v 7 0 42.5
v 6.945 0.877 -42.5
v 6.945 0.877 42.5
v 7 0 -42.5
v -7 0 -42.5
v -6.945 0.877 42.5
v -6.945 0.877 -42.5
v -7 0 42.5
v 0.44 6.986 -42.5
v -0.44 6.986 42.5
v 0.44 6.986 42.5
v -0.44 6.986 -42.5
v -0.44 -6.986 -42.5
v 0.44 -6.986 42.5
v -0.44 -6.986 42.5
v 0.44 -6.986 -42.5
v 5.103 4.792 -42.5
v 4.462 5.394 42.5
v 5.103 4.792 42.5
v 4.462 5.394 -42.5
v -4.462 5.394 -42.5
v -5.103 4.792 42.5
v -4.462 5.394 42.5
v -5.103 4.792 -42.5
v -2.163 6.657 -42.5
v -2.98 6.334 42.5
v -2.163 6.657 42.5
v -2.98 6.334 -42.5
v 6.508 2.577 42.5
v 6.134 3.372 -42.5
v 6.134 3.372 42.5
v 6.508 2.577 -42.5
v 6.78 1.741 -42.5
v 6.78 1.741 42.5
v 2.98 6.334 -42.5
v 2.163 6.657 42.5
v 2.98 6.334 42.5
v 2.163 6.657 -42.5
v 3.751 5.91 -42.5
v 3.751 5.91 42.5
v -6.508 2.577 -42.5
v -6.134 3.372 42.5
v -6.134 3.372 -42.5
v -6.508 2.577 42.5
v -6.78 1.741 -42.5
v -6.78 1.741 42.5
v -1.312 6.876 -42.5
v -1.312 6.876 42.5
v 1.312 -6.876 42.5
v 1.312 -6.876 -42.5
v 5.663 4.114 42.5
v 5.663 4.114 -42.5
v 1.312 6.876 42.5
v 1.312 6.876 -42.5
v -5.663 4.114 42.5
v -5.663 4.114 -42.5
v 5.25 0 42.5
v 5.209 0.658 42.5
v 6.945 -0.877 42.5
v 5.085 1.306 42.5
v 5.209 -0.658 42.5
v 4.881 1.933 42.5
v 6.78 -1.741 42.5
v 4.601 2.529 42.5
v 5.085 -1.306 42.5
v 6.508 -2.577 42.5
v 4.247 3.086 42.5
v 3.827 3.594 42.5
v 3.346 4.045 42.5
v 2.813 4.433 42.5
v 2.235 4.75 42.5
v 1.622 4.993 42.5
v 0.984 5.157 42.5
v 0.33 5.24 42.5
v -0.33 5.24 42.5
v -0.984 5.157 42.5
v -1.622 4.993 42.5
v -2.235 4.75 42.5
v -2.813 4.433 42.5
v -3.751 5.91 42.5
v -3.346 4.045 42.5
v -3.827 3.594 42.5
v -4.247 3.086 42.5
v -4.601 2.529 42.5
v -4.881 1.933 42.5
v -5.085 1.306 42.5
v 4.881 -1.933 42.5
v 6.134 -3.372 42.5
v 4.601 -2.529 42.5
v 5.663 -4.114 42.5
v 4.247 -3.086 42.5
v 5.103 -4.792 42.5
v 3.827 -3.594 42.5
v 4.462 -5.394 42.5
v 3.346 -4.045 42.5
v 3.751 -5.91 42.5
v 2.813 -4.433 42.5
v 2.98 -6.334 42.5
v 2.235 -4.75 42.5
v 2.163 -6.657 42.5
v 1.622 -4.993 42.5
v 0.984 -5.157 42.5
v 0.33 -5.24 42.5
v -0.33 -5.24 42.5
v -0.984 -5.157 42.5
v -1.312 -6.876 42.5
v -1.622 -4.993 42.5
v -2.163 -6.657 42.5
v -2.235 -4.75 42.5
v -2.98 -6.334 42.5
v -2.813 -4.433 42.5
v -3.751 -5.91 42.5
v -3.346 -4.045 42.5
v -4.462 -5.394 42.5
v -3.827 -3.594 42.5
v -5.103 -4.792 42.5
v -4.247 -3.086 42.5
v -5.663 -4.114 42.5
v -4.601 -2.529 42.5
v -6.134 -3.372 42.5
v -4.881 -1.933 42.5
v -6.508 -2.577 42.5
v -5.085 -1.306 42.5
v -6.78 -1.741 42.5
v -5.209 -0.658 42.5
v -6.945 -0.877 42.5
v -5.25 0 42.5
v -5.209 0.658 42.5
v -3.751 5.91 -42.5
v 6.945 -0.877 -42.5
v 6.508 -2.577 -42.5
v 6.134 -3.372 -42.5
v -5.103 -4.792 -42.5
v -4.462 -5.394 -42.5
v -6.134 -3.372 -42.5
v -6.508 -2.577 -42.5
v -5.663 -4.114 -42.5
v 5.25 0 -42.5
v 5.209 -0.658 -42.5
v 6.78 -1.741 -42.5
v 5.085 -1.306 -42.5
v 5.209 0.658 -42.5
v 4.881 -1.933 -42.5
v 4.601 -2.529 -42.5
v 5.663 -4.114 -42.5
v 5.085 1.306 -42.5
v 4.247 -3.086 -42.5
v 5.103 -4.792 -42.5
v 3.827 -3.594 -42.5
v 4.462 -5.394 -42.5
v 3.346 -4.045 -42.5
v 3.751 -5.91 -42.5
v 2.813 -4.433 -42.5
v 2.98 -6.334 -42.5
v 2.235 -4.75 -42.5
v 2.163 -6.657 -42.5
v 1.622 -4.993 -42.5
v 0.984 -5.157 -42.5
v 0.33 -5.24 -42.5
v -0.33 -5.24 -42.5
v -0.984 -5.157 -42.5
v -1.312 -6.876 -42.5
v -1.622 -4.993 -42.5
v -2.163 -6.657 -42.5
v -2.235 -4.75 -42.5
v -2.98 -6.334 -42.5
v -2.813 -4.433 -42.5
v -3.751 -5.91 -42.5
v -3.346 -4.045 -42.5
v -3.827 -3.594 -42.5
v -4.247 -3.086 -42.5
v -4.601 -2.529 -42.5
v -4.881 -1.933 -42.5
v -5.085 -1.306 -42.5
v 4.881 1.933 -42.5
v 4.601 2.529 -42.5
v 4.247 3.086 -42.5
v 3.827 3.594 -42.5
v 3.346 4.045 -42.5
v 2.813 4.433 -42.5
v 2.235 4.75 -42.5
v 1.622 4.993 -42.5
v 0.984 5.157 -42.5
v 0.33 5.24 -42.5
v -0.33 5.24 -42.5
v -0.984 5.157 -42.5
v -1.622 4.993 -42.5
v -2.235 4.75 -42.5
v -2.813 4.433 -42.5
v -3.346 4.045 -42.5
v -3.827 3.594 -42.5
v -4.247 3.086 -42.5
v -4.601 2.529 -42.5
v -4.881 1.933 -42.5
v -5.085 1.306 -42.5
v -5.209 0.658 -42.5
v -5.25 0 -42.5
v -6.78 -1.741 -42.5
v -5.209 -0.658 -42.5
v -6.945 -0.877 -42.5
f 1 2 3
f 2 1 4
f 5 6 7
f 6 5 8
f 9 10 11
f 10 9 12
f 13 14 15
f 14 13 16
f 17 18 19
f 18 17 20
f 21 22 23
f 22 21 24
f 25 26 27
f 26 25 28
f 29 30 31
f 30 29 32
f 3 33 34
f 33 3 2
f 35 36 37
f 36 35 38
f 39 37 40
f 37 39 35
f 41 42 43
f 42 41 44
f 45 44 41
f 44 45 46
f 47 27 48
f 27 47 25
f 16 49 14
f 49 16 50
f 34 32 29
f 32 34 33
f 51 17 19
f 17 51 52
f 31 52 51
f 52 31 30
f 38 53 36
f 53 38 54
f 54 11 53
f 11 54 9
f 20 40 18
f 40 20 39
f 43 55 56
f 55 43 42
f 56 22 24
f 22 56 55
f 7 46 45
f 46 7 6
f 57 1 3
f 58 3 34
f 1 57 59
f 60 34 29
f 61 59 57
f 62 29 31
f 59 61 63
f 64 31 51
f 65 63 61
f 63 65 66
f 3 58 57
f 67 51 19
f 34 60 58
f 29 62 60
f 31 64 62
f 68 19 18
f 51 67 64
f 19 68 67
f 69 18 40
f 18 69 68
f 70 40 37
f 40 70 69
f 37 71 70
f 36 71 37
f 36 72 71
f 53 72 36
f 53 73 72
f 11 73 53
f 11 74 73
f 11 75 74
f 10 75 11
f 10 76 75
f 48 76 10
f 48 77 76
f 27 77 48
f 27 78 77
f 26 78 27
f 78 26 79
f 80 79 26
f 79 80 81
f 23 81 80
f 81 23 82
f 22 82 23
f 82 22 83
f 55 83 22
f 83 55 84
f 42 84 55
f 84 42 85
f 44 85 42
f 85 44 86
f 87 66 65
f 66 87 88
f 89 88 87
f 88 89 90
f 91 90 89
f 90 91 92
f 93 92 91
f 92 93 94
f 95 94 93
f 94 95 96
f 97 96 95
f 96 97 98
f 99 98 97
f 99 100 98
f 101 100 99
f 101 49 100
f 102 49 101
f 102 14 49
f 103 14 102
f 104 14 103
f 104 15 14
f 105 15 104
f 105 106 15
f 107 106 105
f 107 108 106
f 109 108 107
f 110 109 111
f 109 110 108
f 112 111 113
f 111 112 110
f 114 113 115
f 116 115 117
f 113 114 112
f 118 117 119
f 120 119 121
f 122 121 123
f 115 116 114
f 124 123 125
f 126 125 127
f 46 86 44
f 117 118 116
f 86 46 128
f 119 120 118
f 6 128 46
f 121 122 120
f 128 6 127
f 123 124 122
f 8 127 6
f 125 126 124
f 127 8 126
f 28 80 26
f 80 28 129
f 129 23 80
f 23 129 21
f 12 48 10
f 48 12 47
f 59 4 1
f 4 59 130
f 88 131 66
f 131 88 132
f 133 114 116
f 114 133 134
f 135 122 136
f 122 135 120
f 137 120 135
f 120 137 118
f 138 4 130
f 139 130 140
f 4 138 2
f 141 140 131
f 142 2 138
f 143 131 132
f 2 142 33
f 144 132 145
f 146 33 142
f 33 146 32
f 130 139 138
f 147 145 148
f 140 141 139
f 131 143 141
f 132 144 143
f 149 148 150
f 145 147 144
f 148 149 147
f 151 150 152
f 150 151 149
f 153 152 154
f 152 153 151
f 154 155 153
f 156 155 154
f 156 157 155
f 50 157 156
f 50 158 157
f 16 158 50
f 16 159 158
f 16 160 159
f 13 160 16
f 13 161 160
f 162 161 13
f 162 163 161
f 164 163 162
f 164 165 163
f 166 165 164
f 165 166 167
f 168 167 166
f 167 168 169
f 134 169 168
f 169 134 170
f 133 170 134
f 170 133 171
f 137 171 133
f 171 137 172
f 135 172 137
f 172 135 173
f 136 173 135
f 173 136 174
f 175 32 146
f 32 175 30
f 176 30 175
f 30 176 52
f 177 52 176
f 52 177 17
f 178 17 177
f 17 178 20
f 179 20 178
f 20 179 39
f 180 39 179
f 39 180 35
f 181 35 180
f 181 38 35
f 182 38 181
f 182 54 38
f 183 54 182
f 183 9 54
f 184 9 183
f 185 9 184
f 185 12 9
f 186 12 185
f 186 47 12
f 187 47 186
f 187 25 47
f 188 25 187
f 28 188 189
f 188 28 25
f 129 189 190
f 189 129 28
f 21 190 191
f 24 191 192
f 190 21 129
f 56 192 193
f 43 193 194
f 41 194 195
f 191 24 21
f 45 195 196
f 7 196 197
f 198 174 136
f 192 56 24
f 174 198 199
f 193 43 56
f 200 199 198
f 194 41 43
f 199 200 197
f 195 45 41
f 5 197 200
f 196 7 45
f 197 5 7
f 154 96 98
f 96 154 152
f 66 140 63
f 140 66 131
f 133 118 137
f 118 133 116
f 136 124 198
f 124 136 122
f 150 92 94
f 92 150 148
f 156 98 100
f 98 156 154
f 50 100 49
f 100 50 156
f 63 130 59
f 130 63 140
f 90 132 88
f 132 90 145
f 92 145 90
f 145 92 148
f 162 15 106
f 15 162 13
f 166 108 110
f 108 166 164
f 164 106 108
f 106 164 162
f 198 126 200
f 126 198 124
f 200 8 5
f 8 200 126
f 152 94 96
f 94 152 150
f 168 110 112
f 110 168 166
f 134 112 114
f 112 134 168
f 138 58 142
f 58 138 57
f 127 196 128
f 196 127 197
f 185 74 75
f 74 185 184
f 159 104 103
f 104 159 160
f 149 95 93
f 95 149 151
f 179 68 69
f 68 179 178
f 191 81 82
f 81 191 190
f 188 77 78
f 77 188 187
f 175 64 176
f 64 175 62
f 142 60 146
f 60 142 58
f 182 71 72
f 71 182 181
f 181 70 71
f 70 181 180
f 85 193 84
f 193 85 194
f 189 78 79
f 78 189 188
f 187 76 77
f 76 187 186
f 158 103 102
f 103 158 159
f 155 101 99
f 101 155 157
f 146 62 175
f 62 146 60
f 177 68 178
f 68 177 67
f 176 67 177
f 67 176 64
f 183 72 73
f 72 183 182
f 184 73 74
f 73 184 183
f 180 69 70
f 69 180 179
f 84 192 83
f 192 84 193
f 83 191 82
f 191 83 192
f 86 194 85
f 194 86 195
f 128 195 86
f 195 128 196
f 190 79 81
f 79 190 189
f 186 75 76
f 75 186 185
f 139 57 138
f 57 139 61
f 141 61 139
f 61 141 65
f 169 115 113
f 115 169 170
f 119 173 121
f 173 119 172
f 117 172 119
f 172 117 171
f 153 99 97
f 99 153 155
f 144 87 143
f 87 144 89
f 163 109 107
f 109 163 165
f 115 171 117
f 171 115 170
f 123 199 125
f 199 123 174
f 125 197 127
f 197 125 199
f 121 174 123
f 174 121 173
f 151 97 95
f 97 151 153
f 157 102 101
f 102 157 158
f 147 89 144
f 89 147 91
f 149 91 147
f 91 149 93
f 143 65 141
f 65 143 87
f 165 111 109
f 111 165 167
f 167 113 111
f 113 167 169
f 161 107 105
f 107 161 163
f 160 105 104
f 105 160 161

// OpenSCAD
$fn = 50;


difference() {
	union() {
		translate(v = [0, 0, -42.5000000000]) {
			cylinder(h = 85, r = 7.0000000000);
		}
	}
	union() {
		translate(v = [0, 0, -100.0000000000]) {
			cylinder(h = 200, r = 5.2500000000);
		}
	}
}
